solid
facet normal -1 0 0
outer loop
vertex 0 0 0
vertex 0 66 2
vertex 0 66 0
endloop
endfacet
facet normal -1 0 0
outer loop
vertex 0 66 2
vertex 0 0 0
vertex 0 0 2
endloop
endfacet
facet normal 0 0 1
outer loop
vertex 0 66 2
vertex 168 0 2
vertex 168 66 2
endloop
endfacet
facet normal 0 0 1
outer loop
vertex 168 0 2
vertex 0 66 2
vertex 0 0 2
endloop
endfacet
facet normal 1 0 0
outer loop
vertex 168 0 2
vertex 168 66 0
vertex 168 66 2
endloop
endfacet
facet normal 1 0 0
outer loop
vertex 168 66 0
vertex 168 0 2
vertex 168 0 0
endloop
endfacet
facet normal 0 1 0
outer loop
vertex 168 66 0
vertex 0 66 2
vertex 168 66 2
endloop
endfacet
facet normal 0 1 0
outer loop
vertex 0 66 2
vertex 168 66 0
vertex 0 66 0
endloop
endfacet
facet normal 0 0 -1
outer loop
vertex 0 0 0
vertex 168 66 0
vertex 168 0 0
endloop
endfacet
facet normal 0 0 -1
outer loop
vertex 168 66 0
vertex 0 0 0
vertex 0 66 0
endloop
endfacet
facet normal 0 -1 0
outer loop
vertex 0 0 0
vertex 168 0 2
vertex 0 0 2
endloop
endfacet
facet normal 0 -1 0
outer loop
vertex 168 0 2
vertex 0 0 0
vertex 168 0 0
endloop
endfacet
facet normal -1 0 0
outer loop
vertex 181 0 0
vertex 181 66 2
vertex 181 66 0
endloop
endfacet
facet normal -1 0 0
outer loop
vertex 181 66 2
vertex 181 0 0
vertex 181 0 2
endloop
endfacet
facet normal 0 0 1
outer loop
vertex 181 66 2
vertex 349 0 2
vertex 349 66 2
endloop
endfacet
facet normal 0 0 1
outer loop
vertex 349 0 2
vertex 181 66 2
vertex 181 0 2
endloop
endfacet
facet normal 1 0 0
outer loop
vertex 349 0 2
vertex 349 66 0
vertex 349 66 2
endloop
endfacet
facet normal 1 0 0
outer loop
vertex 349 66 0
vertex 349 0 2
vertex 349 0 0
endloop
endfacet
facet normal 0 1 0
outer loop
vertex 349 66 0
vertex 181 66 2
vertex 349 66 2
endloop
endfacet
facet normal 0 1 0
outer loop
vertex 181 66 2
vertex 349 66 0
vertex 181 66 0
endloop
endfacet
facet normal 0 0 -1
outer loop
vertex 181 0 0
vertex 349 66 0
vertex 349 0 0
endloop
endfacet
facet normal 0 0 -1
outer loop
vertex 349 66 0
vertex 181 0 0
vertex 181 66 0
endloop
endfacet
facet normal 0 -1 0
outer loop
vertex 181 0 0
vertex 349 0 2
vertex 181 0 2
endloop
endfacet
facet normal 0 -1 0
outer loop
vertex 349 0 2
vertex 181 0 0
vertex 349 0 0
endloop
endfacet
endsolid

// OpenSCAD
//alle Maße in mm
Pd = 2; //plattendicke ist 2mm

//Maße Grundplatte
Lg = 180; //Länge Grundplatte
Bg = Lg;  //Breite Grundplatte

//zeichne Grundplatte
//cube(size = [Lg,Bg,Pd], center = false);

//Seitenteil 
Hs1 = 70;  //Höhe
cube (size = [Bg-6*Pd,Hs1-2*Pd,Pd], center = false);
translate([Bg-2*Pd+5,0,0]){cube (size = [Bg-6*Pd,Hs1-2*Pd,Pd], center = false);}

    
